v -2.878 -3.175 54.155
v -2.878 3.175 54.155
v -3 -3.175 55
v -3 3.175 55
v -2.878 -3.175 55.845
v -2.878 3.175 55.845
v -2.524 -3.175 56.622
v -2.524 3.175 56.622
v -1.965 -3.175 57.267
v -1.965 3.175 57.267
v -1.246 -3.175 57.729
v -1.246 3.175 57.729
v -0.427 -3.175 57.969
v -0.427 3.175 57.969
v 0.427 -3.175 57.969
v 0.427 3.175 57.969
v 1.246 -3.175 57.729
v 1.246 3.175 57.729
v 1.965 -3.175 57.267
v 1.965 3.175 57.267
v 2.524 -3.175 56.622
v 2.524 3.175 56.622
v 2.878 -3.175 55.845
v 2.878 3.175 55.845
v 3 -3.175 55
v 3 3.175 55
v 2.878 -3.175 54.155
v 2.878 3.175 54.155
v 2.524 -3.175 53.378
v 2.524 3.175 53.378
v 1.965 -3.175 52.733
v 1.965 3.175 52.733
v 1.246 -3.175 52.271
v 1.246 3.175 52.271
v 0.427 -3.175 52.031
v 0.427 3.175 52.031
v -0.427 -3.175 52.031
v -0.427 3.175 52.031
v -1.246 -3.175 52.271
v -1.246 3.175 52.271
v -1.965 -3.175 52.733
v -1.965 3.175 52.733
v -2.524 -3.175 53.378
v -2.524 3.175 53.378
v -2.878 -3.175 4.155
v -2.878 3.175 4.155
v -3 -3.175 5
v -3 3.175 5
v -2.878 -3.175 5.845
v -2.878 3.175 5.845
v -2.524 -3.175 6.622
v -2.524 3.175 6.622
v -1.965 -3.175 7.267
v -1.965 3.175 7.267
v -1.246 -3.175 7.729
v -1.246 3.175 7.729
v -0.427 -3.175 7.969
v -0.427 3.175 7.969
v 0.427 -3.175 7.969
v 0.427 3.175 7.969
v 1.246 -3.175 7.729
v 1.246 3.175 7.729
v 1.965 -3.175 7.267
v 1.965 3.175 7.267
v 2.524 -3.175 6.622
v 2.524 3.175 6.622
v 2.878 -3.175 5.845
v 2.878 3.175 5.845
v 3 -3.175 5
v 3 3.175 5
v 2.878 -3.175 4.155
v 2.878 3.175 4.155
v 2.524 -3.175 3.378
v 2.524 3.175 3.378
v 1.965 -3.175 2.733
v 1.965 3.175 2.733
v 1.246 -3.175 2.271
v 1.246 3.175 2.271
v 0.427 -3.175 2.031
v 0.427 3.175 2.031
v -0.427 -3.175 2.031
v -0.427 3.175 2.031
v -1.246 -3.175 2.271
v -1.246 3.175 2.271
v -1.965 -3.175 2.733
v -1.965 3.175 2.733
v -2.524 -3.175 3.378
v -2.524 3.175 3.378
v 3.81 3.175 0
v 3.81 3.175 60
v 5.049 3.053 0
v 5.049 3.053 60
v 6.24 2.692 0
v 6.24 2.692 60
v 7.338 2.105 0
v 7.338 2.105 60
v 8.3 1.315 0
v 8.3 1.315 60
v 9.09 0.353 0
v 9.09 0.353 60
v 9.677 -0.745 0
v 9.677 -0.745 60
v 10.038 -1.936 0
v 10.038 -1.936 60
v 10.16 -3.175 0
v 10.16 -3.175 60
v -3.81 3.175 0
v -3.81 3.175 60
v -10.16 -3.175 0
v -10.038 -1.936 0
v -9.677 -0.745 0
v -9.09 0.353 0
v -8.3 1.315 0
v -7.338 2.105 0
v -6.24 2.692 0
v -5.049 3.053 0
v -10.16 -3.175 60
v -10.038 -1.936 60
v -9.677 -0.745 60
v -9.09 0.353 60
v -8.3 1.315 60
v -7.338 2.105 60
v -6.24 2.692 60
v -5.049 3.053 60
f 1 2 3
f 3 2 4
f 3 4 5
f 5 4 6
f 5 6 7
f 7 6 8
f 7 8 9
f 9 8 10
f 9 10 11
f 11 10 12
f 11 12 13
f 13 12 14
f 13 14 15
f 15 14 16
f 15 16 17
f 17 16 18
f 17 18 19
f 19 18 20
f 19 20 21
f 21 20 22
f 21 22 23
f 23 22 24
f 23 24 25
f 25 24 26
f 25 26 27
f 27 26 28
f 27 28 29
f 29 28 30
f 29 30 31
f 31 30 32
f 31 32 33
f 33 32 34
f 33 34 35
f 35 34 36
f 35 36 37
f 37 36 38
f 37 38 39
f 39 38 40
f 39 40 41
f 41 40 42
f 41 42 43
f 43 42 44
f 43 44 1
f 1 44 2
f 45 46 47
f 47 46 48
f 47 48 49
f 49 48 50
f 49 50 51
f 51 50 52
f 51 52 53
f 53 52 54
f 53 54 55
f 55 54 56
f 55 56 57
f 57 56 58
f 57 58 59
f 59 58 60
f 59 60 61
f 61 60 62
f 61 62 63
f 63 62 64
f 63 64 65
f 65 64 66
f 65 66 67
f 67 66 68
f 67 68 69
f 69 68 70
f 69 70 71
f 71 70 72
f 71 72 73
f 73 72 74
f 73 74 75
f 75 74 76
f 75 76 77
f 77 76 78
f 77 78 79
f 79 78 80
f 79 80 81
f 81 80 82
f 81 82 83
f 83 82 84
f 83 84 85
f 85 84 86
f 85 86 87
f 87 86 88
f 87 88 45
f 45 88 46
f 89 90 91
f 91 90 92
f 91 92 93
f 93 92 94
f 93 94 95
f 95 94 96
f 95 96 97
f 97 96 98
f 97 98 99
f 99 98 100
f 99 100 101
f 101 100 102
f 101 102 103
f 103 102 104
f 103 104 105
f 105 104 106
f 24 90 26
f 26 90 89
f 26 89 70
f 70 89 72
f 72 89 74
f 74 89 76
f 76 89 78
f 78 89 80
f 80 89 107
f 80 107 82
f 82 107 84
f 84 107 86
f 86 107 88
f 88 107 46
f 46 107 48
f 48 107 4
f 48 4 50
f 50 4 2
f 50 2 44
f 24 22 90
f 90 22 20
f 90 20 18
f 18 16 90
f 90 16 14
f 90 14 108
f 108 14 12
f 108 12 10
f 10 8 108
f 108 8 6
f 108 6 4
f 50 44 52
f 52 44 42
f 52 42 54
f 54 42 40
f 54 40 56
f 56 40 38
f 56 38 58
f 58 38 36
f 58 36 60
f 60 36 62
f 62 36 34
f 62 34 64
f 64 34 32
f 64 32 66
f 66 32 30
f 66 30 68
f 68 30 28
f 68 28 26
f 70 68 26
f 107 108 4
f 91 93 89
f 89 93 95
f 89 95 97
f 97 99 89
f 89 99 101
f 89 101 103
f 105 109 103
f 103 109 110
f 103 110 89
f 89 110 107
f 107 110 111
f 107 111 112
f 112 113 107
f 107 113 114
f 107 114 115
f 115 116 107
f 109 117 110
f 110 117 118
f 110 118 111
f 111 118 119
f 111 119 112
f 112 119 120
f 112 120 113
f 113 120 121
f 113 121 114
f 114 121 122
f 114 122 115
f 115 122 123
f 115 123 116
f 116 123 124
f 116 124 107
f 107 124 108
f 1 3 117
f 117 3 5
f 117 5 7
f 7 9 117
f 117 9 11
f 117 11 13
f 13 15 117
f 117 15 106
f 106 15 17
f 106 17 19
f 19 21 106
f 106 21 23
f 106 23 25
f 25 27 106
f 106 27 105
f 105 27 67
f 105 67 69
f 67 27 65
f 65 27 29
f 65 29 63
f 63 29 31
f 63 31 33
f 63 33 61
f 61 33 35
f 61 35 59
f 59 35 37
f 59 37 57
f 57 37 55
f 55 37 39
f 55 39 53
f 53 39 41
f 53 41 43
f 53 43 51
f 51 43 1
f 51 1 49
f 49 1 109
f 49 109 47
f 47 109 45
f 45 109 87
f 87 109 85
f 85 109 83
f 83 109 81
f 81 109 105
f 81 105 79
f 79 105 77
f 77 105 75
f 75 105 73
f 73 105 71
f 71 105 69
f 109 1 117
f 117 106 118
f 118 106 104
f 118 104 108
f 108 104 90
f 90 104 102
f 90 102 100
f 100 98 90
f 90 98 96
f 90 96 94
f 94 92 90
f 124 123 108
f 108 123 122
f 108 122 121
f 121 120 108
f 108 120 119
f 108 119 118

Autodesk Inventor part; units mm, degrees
ref_plane "YZ Plane" through (0, 0, 0) normal (1, 0, 0) x (0, 1, 0)
ref_plane "XZ Plane" through (0, 0, 0) normal (0, 1, 0) x (-1, 0, 0)
ref_plane "XY Plane" through (0, 0, 0) normal (0, 0, 1) x (1, 0, 0)
sketch "Sketch1" plane through (0, 0, 0) normal (0, 0, 1) x (1, 0, 0)
  line L0 (-10.16, 3.175) -> (10.16, 3.175)
  line L1 (10.16, 3.175) -> (10.16, -3.175)
  line L2 (10.16, -3.175) -> (-10.16, -3.175)
  line L3 (-10.16, -3.175) -> (-10.16, 3.175)
  line L4 (-10.16, 3.175) -> (10.16, -3.175) construction
  line L5 (10.16, 3.175) -> (-10.16, -3.175) construction
  point P0 (0, 0)
  dimension "d0" = 20.32
  dimension "d1" = 6.35
extrude "Extrusion1" add sketch "Sketch1" along normal blind 60
fillet "Fillet1" radius 6.35 2 edges at (-10.16, 3.175, 30) (10.16, 3.175, 30)
sketch "Sketch2" plane through (-3.81, 3.175, 0) normal (0, 1, 0) x (1, 0, 0)
  circle A0 centre (3.81, -5) radius 3
  line L0 (7.62, 0) -> (7.62, -60) projected
  circle A1 centre (3.81, -55) radius 3
  line L1 (7.62, -60) -> (0, -60) projected
  point P0 (3.81, 0)
  dimension "d5" = 6
  dimension "d6" = 5
  dimension "d7" = 3.81
  dimension "d10" = 6
  dimension "d11" = 3.81
  dimension "d15" = 50
extrude "Extrusion3" cut sketch "Sketch2" against normal through all
properties part number "Festoon_LowerBracket"
